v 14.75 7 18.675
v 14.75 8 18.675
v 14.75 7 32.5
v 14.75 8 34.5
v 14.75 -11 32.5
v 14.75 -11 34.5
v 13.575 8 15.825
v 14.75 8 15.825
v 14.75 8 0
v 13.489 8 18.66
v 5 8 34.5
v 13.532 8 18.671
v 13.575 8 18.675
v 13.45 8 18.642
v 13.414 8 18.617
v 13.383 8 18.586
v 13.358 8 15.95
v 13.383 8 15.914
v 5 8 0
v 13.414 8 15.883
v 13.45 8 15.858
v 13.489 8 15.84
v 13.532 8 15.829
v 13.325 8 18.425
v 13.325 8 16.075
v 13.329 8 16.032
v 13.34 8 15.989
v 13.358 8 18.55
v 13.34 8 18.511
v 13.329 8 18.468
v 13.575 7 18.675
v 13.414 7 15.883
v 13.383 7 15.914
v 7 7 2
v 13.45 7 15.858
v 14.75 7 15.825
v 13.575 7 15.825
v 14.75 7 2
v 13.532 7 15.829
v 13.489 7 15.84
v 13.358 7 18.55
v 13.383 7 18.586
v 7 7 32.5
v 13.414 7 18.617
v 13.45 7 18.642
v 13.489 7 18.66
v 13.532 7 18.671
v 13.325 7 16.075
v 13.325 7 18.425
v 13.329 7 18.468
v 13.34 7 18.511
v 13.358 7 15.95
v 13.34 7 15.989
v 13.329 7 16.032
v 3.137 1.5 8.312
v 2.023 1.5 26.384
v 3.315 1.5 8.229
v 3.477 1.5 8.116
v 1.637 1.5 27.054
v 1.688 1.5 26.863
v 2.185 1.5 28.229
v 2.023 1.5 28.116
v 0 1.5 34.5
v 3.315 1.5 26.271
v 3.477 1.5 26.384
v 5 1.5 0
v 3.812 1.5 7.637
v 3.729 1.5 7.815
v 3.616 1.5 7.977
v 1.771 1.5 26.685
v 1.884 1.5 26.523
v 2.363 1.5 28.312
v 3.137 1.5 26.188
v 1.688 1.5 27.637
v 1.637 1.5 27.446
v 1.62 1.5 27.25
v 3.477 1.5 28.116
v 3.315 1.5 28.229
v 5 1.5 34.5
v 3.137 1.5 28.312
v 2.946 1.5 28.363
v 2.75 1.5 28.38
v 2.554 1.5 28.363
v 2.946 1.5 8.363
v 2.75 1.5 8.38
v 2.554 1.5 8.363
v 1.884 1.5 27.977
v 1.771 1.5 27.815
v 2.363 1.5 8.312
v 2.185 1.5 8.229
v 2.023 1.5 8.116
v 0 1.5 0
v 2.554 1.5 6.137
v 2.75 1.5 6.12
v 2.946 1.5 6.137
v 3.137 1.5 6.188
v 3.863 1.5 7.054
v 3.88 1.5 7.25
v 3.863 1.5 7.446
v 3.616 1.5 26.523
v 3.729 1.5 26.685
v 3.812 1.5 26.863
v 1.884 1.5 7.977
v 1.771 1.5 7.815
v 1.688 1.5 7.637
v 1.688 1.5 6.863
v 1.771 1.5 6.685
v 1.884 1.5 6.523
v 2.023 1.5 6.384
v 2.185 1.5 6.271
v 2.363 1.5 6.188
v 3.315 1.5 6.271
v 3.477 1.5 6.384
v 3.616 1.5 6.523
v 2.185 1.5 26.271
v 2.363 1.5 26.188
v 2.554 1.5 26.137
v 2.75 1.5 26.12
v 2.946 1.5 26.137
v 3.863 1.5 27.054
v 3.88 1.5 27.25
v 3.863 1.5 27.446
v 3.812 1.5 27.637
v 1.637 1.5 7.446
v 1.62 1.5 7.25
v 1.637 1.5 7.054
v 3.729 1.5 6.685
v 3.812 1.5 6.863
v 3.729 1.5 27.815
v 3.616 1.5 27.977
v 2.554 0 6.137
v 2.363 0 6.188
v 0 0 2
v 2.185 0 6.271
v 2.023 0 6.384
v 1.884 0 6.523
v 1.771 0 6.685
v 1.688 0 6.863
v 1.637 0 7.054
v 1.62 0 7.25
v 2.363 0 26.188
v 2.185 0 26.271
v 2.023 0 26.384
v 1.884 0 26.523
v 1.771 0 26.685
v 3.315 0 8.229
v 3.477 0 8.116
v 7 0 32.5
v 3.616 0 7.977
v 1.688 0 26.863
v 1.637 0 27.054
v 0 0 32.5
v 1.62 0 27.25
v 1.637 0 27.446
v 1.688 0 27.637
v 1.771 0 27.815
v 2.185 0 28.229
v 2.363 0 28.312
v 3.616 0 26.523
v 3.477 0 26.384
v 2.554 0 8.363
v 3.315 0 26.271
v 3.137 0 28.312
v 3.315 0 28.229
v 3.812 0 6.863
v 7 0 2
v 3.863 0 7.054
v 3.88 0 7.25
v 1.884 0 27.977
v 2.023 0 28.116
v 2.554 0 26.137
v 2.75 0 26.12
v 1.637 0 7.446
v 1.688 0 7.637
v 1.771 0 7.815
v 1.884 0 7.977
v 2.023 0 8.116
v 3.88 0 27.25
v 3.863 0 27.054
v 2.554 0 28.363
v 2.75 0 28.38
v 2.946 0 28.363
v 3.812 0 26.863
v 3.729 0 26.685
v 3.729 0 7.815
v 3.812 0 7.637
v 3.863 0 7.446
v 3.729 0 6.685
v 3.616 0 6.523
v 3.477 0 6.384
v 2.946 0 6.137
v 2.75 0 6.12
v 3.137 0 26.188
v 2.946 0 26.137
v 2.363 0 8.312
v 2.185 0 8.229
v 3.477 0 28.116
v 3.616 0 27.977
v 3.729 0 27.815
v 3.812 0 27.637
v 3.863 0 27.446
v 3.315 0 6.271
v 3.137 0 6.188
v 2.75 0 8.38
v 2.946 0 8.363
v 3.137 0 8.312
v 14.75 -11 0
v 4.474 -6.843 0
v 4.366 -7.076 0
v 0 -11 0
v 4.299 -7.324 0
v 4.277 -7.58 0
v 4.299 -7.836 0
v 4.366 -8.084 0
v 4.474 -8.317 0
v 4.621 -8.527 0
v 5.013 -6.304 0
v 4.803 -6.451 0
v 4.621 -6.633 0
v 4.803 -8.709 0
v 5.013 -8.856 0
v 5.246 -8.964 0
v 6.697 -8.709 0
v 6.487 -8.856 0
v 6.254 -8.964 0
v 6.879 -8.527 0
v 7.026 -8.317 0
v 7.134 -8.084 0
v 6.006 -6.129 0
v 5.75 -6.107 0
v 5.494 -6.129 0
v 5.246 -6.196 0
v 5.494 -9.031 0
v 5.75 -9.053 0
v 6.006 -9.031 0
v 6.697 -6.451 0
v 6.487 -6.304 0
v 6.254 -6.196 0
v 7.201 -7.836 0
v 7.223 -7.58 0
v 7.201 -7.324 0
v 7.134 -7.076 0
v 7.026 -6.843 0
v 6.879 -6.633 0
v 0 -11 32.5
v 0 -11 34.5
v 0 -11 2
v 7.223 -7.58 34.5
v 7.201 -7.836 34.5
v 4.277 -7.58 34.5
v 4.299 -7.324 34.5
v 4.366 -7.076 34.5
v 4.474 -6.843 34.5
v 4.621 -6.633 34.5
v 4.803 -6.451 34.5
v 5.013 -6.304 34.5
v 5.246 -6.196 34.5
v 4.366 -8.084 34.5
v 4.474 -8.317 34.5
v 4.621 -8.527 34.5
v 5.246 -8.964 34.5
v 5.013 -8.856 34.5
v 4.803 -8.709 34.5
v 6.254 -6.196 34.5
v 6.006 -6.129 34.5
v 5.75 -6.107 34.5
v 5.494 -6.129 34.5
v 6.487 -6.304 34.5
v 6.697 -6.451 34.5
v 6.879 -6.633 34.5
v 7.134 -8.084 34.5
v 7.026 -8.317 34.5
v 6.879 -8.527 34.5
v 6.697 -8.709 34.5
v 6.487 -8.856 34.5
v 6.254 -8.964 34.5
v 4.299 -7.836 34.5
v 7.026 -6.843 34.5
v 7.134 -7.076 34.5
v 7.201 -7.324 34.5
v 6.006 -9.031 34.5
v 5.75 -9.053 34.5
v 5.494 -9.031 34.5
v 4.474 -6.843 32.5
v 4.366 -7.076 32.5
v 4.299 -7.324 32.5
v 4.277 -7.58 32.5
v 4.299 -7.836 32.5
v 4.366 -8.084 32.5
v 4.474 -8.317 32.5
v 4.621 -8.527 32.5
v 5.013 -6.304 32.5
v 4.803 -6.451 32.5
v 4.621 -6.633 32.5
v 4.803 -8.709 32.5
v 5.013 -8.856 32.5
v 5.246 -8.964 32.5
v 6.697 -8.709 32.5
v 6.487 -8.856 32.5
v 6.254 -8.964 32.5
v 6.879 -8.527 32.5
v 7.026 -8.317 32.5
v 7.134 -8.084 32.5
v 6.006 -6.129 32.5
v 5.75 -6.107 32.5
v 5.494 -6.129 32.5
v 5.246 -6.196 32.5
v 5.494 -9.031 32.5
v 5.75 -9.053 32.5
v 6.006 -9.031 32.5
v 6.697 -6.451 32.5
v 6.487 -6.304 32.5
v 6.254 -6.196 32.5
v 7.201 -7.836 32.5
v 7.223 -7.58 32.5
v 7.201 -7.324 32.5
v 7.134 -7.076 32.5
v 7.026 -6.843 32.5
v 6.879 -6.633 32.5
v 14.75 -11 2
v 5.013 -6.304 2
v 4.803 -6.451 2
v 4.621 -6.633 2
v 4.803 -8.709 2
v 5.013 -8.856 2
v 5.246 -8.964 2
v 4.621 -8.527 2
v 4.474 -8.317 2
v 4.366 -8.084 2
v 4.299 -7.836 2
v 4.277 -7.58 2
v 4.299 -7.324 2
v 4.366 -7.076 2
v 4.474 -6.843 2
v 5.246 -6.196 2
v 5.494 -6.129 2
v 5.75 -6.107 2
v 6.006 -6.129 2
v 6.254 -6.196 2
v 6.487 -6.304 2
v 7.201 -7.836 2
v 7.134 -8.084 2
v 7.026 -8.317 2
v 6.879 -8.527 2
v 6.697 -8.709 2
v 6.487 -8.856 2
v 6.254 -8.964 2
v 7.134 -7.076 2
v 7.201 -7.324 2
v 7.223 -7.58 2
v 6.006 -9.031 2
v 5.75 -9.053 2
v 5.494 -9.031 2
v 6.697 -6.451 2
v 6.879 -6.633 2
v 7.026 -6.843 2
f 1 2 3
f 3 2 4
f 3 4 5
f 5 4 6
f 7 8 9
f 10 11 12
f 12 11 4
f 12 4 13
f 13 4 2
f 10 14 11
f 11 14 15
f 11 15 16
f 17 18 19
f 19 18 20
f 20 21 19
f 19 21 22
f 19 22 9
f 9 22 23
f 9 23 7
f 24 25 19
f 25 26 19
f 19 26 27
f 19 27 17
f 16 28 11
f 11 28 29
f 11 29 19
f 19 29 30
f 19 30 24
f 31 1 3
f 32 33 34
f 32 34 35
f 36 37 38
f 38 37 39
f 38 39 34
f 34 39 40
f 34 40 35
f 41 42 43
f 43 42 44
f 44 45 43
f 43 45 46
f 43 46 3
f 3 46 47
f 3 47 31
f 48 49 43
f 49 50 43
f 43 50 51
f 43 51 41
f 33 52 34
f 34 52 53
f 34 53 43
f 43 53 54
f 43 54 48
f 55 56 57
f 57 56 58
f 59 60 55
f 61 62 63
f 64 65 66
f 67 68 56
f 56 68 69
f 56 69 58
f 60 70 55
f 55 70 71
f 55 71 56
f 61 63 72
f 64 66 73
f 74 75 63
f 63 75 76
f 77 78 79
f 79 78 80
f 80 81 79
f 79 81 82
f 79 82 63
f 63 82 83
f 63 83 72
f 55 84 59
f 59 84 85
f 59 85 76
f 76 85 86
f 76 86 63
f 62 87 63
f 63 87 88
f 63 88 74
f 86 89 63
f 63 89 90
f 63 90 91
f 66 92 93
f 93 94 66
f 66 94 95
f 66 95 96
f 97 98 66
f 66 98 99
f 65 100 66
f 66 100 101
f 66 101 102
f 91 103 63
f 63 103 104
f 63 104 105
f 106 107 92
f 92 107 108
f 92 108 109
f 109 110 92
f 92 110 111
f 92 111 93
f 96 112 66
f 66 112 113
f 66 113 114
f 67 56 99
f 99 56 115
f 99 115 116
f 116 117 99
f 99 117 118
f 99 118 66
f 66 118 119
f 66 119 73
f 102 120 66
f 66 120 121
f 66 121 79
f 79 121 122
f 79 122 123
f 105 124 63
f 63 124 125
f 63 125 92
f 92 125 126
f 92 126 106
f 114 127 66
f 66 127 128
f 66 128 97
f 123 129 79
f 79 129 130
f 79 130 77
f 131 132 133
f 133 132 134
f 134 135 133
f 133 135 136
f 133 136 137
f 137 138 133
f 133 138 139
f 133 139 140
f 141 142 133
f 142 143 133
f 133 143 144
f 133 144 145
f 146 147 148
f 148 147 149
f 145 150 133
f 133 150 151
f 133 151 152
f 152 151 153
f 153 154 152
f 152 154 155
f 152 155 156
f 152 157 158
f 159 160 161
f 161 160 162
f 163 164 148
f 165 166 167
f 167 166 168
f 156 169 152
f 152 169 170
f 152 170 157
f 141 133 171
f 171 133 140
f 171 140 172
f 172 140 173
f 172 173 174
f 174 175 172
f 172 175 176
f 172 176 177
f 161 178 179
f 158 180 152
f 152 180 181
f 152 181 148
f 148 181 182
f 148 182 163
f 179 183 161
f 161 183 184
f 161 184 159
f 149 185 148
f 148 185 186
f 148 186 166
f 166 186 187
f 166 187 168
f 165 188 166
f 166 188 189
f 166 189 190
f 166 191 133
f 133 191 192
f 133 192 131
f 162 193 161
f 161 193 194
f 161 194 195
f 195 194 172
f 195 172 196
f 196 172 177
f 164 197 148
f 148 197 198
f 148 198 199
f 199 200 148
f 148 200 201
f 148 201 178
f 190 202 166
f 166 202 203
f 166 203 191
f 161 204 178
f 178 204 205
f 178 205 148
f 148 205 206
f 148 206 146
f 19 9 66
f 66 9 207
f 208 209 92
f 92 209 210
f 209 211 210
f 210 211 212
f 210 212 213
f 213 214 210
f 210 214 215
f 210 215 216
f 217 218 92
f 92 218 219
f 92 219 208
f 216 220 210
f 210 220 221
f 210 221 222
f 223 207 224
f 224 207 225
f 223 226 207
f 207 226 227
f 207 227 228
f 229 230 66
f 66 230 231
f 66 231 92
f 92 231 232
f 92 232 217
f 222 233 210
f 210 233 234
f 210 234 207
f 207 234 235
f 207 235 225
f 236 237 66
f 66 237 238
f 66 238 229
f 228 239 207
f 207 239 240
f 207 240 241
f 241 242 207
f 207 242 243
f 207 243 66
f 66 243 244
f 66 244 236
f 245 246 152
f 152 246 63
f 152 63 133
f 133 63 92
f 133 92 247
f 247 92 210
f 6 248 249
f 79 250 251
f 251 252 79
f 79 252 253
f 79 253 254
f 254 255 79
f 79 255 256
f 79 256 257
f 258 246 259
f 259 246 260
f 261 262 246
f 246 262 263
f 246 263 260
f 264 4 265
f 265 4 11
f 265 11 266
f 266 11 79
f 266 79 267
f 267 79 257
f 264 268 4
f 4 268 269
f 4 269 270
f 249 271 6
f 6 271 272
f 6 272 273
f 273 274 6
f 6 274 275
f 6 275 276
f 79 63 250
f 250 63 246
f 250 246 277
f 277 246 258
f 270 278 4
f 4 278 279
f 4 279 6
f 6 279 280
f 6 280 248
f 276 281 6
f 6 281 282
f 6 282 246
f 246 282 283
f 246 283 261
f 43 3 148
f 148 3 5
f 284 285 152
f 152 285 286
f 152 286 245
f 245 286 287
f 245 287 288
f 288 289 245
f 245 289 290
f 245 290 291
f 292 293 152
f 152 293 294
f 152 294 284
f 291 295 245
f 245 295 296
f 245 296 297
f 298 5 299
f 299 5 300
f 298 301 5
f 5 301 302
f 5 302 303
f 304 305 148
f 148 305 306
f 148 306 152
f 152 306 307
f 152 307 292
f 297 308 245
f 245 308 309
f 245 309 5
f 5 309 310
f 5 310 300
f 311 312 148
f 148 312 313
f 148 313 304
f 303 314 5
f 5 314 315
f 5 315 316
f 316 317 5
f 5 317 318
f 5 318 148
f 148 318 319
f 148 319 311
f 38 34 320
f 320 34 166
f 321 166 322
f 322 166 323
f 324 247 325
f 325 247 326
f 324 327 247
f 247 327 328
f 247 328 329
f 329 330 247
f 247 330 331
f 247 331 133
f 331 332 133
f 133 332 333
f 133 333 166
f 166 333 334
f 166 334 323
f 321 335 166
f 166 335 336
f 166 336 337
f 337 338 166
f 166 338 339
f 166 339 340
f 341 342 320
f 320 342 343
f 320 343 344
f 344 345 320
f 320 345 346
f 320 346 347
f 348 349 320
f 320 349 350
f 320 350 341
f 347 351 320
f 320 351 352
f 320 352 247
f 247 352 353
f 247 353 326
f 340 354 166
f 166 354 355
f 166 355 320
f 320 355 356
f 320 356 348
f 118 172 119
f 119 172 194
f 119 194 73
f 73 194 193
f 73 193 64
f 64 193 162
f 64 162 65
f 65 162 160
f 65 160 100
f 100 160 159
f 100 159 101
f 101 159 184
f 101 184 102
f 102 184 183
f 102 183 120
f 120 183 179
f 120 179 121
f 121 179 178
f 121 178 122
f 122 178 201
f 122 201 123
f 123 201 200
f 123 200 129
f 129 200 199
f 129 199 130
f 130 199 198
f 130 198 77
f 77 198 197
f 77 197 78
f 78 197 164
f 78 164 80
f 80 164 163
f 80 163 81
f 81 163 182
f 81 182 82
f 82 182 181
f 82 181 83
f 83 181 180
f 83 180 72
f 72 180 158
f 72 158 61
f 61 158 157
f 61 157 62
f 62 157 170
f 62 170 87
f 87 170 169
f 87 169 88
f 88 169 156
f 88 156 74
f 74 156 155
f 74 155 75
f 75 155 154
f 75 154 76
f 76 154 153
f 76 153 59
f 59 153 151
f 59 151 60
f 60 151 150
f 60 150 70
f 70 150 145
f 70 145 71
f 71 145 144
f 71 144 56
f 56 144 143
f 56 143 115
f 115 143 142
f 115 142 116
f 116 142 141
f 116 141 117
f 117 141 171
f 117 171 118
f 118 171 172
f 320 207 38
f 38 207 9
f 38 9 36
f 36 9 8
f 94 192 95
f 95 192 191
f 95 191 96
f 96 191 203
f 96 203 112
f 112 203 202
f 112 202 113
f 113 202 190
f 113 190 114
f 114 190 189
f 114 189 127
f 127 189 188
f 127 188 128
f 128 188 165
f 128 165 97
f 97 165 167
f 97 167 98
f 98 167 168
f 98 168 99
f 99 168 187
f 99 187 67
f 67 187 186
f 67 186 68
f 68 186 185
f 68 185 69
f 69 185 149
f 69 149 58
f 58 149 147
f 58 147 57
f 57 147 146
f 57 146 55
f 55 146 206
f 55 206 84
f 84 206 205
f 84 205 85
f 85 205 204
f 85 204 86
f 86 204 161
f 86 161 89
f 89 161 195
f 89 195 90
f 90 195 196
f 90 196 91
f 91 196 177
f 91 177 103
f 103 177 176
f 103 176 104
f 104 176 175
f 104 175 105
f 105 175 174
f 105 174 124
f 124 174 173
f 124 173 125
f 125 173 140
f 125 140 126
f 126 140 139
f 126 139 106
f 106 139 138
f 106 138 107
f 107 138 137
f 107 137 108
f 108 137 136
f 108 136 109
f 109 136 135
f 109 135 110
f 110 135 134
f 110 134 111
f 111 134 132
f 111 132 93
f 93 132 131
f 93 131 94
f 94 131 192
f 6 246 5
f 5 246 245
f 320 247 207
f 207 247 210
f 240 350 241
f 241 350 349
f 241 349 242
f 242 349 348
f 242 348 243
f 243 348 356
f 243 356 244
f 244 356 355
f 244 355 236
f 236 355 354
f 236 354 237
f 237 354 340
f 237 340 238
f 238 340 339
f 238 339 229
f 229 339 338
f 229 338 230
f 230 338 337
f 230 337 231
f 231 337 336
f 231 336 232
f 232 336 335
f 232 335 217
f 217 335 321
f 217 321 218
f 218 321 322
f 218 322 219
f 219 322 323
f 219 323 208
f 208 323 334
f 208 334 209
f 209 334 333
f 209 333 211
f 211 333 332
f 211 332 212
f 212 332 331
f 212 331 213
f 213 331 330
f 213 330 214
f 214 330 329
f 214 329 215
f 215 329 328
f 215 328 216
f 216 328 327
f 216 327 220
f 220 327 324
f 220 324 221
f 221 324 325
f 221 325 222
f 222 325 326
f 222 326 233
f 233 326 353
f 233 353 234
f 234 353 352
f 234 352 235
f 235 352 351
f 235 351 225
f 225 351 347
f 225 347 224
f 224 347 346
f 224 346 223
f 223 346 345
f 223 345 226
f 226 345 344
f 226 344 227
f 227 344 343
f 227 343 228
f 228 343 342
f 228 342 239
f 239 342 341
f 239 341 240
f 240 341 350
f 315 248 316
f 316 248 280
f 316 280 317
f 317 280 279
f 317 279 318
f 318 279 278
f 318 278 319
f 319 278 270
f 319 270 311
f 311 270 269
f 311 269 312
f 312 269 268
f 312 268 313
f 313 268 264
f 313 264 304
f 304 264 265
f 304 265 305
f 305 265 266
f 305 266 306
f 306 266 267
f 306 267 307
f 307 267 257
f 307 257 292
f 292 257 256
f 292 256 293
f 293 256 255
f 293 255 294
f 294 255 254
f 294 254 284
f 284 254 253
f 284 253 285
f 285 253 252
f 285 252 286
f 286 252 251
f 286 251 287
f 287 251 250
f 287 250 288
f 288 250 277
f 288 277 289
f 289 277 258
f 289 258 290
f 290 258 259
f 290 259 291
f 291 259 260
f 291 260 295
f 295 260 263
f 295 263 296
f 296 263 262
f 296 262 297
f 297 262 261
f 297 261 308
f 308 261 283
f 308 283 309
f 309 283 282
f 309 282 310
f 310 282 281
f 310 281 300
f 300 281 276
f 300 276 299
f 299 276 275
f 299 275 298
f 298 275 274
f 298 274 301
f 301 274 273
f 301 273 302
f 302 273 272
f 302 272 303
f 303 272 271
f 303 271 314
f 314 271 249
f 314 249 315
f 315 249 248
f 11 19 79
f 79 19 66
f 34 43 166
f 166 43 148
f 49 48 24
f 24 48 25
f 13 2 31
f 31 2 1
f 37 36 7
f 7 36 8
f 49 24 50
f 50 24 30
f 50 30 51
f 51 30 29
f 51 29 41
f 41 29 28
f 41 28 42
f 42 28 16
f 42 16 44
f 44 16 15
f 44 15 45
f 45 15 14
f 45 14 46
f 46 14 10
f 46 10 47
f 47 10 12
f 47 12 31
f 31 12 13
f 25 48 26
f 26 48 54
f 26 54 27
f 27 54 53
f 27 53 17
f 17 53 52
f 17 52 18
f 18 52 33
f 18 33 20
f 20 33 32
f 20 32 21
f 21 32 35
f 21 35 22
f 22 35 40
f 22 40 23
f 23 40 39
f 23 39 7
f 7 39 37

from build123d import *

# Parameters (mm, degrees)
SKETCH1_R                    = 1.1303
BASE_DEPTH                   = 1.5
SKETCH1_4_W                  = 14.75
SKETCH1_4_H                  = 2
BOTTOM_WALLS_DEPTH           = 11
F_4_40_CLOSE_FIT_CLEAR_REACH = 41.1
SKETCH2_R                    = 1.4732
SKETCH1_8_W                  = 2
SKETCH1_8_H                  = 30.5
MIDDLE_WALLS_DEPTH           = 7
ROOF_START                   = 7
ROOF_OUTLINE_W               = 9.75
ROOF_OUTLINE_H               = 34.5
ROOF_DEPTH                   = 1
SKETCH1_5_W                  = 1.425
SKETCH1_5_H                  = 2.85
CUT_EXTRUDE2_DEPTH           = 8
FILLET1_R                    = 0.25


# Read off the part's stored shape, not the designer's step: Roof
with BuildPart() as part:
    # Sketch1 → Base (new body)
    with BuildSketch(Plane(origin=(0, 0, 0), x_dir=(1, 0, 0), z_dir=(0, 1, 0))):
        Polygon((5, -2), (14.75, -2), (14.75, 0), (0, 0), (0, -34.5), (14.75, -34.5), (14.75, -32.5), (5, -32.5), align=None)
        with Locations(Location((2.75, -7.25, 0), (0, 0, 270))):
            Circle(SKETCH1_R, mode=Mode.SUBTRACT)
        with Locations(Location((2.75, -27.25, 0), (0, 0, 270))):
            Circle(SKETCH1_R, mode=Mode.SUBTRACT)
    extrude(amount=BASE_DEPTH)

    # Sketch1<4> → Bottom Walls (add)
    with BuildSketch(Plane(origin=(0, 0, 0), x_dir=(1, 0, 0), z_dir=(0, 1, 0))):
        with Locations((7.375, -1)):
            Rectangle(SKETCH1_4_W, SKETCH1_4_H)
        with Locations((7.375, -33.5)):
            Rectangle(SKETCH1_4_W, SKETCH1_4_H)
    extrude(amount=-BOTTOM_WALLS_DEPTH)

    # 4-40_Close_fit Clear: up to this face of the body (flat: up to its plane)
    f_4_40_close_fit_clear_end = Plane(part.part.faces().sort_by_distance((7.375, -4.75, 0))[0])
    # Sketch2 → 4-40_Close_fit Clear (cut, up to the picked face)
    with BuildSketch(Plane.XY.offset(34.5), mode=Mode.PRIVATE) as f_4_40_close_fit_clear_sk1:
        with Locations((5.75, -7.58)):
            Circle(SKETCH2_R)
    f_4_40_close_fit_clear_tool1 = split(extrude(f_4_40_close_fit_clear_sk1.sketch, amount=-F_4_40_CLOSE_FIT_CLEAR_REACH, mode=Mode.PRIVATE), bisect_by=f_4_40_close_fit_clear_end, keep=Keep.BOTH, mode=Mode.PRIVATE)
    add(f_4_40_close_fit_clear_tool1.solids().sort_by(Axis((5.75, -7.58, 34.5), (0, 0, -1)))[0], mode=Mode.SUBTRACT)

    # Sketch1<8> → Middle Walls (add)
    with BuildSketch(Plane(origin=(0, 0, 0), x_dir=(1, 0, 0), z_dir=(0, 1, 0))):
        Polygon((5, -2), (7, -2), (12.75, -2), (14.75, -2), (14.75, 0), (5, 0), align=None)
        with Locations((6, -17.25)):
            Rectangle(SKETCH1_8_W, SKETCH1_8_H)
        Polygon((12.75, -32.5), (7, -32.5), (5, -32.5), (5, -34.5), (14.75, -34.5), (14.75, -32.5), align=None)
    extrude(amount=MIDDLE_WALLS_DEPTH)

    # Roof outline → Roof (add)
    with BuildSketch(Plane(origin=(0, 0, 0), x_dir=(1, 0, 0), z_dir=(0, 1, 0)).offset(ROOF_START)):
        with Locations((9.875, -17.25)):
            Rectangle(ROOF_OUTLINE_W, ROOF_OUTLINE_H)
    extrude(amount=ROOF_DEPTH)

    # Sketch1<5> → Cut-Extrude2 (cut)
    with BuildSketch(Plane(origin=(0, 0, 0), x_dir=(1, 0, 0), z_dir=(0, 1, 0))):
        with Locations((14.0375, -17.25)):
            Rectangle(SKETCH1_5_W, SKETCH1_5_H)
        with Locations((15.4625, -17.25)):
            Rectangle(SKETCH1_5_W, SKETCH1_5_H)
    extrude(amount=CUT_EXTRUDE2_DEPTH, mode=Mode.SUBTRACT)

    # Fillet1
    fillet1_edges = [part.edges().sort_by_distance(p)[0] for p in [
        (13.325, 7.5, 15.825),
        (13.325, 7.5, 18.675),
    ]]
    fillet(fillet1_edges, radius=FILLET1_R)


solid = part.part
